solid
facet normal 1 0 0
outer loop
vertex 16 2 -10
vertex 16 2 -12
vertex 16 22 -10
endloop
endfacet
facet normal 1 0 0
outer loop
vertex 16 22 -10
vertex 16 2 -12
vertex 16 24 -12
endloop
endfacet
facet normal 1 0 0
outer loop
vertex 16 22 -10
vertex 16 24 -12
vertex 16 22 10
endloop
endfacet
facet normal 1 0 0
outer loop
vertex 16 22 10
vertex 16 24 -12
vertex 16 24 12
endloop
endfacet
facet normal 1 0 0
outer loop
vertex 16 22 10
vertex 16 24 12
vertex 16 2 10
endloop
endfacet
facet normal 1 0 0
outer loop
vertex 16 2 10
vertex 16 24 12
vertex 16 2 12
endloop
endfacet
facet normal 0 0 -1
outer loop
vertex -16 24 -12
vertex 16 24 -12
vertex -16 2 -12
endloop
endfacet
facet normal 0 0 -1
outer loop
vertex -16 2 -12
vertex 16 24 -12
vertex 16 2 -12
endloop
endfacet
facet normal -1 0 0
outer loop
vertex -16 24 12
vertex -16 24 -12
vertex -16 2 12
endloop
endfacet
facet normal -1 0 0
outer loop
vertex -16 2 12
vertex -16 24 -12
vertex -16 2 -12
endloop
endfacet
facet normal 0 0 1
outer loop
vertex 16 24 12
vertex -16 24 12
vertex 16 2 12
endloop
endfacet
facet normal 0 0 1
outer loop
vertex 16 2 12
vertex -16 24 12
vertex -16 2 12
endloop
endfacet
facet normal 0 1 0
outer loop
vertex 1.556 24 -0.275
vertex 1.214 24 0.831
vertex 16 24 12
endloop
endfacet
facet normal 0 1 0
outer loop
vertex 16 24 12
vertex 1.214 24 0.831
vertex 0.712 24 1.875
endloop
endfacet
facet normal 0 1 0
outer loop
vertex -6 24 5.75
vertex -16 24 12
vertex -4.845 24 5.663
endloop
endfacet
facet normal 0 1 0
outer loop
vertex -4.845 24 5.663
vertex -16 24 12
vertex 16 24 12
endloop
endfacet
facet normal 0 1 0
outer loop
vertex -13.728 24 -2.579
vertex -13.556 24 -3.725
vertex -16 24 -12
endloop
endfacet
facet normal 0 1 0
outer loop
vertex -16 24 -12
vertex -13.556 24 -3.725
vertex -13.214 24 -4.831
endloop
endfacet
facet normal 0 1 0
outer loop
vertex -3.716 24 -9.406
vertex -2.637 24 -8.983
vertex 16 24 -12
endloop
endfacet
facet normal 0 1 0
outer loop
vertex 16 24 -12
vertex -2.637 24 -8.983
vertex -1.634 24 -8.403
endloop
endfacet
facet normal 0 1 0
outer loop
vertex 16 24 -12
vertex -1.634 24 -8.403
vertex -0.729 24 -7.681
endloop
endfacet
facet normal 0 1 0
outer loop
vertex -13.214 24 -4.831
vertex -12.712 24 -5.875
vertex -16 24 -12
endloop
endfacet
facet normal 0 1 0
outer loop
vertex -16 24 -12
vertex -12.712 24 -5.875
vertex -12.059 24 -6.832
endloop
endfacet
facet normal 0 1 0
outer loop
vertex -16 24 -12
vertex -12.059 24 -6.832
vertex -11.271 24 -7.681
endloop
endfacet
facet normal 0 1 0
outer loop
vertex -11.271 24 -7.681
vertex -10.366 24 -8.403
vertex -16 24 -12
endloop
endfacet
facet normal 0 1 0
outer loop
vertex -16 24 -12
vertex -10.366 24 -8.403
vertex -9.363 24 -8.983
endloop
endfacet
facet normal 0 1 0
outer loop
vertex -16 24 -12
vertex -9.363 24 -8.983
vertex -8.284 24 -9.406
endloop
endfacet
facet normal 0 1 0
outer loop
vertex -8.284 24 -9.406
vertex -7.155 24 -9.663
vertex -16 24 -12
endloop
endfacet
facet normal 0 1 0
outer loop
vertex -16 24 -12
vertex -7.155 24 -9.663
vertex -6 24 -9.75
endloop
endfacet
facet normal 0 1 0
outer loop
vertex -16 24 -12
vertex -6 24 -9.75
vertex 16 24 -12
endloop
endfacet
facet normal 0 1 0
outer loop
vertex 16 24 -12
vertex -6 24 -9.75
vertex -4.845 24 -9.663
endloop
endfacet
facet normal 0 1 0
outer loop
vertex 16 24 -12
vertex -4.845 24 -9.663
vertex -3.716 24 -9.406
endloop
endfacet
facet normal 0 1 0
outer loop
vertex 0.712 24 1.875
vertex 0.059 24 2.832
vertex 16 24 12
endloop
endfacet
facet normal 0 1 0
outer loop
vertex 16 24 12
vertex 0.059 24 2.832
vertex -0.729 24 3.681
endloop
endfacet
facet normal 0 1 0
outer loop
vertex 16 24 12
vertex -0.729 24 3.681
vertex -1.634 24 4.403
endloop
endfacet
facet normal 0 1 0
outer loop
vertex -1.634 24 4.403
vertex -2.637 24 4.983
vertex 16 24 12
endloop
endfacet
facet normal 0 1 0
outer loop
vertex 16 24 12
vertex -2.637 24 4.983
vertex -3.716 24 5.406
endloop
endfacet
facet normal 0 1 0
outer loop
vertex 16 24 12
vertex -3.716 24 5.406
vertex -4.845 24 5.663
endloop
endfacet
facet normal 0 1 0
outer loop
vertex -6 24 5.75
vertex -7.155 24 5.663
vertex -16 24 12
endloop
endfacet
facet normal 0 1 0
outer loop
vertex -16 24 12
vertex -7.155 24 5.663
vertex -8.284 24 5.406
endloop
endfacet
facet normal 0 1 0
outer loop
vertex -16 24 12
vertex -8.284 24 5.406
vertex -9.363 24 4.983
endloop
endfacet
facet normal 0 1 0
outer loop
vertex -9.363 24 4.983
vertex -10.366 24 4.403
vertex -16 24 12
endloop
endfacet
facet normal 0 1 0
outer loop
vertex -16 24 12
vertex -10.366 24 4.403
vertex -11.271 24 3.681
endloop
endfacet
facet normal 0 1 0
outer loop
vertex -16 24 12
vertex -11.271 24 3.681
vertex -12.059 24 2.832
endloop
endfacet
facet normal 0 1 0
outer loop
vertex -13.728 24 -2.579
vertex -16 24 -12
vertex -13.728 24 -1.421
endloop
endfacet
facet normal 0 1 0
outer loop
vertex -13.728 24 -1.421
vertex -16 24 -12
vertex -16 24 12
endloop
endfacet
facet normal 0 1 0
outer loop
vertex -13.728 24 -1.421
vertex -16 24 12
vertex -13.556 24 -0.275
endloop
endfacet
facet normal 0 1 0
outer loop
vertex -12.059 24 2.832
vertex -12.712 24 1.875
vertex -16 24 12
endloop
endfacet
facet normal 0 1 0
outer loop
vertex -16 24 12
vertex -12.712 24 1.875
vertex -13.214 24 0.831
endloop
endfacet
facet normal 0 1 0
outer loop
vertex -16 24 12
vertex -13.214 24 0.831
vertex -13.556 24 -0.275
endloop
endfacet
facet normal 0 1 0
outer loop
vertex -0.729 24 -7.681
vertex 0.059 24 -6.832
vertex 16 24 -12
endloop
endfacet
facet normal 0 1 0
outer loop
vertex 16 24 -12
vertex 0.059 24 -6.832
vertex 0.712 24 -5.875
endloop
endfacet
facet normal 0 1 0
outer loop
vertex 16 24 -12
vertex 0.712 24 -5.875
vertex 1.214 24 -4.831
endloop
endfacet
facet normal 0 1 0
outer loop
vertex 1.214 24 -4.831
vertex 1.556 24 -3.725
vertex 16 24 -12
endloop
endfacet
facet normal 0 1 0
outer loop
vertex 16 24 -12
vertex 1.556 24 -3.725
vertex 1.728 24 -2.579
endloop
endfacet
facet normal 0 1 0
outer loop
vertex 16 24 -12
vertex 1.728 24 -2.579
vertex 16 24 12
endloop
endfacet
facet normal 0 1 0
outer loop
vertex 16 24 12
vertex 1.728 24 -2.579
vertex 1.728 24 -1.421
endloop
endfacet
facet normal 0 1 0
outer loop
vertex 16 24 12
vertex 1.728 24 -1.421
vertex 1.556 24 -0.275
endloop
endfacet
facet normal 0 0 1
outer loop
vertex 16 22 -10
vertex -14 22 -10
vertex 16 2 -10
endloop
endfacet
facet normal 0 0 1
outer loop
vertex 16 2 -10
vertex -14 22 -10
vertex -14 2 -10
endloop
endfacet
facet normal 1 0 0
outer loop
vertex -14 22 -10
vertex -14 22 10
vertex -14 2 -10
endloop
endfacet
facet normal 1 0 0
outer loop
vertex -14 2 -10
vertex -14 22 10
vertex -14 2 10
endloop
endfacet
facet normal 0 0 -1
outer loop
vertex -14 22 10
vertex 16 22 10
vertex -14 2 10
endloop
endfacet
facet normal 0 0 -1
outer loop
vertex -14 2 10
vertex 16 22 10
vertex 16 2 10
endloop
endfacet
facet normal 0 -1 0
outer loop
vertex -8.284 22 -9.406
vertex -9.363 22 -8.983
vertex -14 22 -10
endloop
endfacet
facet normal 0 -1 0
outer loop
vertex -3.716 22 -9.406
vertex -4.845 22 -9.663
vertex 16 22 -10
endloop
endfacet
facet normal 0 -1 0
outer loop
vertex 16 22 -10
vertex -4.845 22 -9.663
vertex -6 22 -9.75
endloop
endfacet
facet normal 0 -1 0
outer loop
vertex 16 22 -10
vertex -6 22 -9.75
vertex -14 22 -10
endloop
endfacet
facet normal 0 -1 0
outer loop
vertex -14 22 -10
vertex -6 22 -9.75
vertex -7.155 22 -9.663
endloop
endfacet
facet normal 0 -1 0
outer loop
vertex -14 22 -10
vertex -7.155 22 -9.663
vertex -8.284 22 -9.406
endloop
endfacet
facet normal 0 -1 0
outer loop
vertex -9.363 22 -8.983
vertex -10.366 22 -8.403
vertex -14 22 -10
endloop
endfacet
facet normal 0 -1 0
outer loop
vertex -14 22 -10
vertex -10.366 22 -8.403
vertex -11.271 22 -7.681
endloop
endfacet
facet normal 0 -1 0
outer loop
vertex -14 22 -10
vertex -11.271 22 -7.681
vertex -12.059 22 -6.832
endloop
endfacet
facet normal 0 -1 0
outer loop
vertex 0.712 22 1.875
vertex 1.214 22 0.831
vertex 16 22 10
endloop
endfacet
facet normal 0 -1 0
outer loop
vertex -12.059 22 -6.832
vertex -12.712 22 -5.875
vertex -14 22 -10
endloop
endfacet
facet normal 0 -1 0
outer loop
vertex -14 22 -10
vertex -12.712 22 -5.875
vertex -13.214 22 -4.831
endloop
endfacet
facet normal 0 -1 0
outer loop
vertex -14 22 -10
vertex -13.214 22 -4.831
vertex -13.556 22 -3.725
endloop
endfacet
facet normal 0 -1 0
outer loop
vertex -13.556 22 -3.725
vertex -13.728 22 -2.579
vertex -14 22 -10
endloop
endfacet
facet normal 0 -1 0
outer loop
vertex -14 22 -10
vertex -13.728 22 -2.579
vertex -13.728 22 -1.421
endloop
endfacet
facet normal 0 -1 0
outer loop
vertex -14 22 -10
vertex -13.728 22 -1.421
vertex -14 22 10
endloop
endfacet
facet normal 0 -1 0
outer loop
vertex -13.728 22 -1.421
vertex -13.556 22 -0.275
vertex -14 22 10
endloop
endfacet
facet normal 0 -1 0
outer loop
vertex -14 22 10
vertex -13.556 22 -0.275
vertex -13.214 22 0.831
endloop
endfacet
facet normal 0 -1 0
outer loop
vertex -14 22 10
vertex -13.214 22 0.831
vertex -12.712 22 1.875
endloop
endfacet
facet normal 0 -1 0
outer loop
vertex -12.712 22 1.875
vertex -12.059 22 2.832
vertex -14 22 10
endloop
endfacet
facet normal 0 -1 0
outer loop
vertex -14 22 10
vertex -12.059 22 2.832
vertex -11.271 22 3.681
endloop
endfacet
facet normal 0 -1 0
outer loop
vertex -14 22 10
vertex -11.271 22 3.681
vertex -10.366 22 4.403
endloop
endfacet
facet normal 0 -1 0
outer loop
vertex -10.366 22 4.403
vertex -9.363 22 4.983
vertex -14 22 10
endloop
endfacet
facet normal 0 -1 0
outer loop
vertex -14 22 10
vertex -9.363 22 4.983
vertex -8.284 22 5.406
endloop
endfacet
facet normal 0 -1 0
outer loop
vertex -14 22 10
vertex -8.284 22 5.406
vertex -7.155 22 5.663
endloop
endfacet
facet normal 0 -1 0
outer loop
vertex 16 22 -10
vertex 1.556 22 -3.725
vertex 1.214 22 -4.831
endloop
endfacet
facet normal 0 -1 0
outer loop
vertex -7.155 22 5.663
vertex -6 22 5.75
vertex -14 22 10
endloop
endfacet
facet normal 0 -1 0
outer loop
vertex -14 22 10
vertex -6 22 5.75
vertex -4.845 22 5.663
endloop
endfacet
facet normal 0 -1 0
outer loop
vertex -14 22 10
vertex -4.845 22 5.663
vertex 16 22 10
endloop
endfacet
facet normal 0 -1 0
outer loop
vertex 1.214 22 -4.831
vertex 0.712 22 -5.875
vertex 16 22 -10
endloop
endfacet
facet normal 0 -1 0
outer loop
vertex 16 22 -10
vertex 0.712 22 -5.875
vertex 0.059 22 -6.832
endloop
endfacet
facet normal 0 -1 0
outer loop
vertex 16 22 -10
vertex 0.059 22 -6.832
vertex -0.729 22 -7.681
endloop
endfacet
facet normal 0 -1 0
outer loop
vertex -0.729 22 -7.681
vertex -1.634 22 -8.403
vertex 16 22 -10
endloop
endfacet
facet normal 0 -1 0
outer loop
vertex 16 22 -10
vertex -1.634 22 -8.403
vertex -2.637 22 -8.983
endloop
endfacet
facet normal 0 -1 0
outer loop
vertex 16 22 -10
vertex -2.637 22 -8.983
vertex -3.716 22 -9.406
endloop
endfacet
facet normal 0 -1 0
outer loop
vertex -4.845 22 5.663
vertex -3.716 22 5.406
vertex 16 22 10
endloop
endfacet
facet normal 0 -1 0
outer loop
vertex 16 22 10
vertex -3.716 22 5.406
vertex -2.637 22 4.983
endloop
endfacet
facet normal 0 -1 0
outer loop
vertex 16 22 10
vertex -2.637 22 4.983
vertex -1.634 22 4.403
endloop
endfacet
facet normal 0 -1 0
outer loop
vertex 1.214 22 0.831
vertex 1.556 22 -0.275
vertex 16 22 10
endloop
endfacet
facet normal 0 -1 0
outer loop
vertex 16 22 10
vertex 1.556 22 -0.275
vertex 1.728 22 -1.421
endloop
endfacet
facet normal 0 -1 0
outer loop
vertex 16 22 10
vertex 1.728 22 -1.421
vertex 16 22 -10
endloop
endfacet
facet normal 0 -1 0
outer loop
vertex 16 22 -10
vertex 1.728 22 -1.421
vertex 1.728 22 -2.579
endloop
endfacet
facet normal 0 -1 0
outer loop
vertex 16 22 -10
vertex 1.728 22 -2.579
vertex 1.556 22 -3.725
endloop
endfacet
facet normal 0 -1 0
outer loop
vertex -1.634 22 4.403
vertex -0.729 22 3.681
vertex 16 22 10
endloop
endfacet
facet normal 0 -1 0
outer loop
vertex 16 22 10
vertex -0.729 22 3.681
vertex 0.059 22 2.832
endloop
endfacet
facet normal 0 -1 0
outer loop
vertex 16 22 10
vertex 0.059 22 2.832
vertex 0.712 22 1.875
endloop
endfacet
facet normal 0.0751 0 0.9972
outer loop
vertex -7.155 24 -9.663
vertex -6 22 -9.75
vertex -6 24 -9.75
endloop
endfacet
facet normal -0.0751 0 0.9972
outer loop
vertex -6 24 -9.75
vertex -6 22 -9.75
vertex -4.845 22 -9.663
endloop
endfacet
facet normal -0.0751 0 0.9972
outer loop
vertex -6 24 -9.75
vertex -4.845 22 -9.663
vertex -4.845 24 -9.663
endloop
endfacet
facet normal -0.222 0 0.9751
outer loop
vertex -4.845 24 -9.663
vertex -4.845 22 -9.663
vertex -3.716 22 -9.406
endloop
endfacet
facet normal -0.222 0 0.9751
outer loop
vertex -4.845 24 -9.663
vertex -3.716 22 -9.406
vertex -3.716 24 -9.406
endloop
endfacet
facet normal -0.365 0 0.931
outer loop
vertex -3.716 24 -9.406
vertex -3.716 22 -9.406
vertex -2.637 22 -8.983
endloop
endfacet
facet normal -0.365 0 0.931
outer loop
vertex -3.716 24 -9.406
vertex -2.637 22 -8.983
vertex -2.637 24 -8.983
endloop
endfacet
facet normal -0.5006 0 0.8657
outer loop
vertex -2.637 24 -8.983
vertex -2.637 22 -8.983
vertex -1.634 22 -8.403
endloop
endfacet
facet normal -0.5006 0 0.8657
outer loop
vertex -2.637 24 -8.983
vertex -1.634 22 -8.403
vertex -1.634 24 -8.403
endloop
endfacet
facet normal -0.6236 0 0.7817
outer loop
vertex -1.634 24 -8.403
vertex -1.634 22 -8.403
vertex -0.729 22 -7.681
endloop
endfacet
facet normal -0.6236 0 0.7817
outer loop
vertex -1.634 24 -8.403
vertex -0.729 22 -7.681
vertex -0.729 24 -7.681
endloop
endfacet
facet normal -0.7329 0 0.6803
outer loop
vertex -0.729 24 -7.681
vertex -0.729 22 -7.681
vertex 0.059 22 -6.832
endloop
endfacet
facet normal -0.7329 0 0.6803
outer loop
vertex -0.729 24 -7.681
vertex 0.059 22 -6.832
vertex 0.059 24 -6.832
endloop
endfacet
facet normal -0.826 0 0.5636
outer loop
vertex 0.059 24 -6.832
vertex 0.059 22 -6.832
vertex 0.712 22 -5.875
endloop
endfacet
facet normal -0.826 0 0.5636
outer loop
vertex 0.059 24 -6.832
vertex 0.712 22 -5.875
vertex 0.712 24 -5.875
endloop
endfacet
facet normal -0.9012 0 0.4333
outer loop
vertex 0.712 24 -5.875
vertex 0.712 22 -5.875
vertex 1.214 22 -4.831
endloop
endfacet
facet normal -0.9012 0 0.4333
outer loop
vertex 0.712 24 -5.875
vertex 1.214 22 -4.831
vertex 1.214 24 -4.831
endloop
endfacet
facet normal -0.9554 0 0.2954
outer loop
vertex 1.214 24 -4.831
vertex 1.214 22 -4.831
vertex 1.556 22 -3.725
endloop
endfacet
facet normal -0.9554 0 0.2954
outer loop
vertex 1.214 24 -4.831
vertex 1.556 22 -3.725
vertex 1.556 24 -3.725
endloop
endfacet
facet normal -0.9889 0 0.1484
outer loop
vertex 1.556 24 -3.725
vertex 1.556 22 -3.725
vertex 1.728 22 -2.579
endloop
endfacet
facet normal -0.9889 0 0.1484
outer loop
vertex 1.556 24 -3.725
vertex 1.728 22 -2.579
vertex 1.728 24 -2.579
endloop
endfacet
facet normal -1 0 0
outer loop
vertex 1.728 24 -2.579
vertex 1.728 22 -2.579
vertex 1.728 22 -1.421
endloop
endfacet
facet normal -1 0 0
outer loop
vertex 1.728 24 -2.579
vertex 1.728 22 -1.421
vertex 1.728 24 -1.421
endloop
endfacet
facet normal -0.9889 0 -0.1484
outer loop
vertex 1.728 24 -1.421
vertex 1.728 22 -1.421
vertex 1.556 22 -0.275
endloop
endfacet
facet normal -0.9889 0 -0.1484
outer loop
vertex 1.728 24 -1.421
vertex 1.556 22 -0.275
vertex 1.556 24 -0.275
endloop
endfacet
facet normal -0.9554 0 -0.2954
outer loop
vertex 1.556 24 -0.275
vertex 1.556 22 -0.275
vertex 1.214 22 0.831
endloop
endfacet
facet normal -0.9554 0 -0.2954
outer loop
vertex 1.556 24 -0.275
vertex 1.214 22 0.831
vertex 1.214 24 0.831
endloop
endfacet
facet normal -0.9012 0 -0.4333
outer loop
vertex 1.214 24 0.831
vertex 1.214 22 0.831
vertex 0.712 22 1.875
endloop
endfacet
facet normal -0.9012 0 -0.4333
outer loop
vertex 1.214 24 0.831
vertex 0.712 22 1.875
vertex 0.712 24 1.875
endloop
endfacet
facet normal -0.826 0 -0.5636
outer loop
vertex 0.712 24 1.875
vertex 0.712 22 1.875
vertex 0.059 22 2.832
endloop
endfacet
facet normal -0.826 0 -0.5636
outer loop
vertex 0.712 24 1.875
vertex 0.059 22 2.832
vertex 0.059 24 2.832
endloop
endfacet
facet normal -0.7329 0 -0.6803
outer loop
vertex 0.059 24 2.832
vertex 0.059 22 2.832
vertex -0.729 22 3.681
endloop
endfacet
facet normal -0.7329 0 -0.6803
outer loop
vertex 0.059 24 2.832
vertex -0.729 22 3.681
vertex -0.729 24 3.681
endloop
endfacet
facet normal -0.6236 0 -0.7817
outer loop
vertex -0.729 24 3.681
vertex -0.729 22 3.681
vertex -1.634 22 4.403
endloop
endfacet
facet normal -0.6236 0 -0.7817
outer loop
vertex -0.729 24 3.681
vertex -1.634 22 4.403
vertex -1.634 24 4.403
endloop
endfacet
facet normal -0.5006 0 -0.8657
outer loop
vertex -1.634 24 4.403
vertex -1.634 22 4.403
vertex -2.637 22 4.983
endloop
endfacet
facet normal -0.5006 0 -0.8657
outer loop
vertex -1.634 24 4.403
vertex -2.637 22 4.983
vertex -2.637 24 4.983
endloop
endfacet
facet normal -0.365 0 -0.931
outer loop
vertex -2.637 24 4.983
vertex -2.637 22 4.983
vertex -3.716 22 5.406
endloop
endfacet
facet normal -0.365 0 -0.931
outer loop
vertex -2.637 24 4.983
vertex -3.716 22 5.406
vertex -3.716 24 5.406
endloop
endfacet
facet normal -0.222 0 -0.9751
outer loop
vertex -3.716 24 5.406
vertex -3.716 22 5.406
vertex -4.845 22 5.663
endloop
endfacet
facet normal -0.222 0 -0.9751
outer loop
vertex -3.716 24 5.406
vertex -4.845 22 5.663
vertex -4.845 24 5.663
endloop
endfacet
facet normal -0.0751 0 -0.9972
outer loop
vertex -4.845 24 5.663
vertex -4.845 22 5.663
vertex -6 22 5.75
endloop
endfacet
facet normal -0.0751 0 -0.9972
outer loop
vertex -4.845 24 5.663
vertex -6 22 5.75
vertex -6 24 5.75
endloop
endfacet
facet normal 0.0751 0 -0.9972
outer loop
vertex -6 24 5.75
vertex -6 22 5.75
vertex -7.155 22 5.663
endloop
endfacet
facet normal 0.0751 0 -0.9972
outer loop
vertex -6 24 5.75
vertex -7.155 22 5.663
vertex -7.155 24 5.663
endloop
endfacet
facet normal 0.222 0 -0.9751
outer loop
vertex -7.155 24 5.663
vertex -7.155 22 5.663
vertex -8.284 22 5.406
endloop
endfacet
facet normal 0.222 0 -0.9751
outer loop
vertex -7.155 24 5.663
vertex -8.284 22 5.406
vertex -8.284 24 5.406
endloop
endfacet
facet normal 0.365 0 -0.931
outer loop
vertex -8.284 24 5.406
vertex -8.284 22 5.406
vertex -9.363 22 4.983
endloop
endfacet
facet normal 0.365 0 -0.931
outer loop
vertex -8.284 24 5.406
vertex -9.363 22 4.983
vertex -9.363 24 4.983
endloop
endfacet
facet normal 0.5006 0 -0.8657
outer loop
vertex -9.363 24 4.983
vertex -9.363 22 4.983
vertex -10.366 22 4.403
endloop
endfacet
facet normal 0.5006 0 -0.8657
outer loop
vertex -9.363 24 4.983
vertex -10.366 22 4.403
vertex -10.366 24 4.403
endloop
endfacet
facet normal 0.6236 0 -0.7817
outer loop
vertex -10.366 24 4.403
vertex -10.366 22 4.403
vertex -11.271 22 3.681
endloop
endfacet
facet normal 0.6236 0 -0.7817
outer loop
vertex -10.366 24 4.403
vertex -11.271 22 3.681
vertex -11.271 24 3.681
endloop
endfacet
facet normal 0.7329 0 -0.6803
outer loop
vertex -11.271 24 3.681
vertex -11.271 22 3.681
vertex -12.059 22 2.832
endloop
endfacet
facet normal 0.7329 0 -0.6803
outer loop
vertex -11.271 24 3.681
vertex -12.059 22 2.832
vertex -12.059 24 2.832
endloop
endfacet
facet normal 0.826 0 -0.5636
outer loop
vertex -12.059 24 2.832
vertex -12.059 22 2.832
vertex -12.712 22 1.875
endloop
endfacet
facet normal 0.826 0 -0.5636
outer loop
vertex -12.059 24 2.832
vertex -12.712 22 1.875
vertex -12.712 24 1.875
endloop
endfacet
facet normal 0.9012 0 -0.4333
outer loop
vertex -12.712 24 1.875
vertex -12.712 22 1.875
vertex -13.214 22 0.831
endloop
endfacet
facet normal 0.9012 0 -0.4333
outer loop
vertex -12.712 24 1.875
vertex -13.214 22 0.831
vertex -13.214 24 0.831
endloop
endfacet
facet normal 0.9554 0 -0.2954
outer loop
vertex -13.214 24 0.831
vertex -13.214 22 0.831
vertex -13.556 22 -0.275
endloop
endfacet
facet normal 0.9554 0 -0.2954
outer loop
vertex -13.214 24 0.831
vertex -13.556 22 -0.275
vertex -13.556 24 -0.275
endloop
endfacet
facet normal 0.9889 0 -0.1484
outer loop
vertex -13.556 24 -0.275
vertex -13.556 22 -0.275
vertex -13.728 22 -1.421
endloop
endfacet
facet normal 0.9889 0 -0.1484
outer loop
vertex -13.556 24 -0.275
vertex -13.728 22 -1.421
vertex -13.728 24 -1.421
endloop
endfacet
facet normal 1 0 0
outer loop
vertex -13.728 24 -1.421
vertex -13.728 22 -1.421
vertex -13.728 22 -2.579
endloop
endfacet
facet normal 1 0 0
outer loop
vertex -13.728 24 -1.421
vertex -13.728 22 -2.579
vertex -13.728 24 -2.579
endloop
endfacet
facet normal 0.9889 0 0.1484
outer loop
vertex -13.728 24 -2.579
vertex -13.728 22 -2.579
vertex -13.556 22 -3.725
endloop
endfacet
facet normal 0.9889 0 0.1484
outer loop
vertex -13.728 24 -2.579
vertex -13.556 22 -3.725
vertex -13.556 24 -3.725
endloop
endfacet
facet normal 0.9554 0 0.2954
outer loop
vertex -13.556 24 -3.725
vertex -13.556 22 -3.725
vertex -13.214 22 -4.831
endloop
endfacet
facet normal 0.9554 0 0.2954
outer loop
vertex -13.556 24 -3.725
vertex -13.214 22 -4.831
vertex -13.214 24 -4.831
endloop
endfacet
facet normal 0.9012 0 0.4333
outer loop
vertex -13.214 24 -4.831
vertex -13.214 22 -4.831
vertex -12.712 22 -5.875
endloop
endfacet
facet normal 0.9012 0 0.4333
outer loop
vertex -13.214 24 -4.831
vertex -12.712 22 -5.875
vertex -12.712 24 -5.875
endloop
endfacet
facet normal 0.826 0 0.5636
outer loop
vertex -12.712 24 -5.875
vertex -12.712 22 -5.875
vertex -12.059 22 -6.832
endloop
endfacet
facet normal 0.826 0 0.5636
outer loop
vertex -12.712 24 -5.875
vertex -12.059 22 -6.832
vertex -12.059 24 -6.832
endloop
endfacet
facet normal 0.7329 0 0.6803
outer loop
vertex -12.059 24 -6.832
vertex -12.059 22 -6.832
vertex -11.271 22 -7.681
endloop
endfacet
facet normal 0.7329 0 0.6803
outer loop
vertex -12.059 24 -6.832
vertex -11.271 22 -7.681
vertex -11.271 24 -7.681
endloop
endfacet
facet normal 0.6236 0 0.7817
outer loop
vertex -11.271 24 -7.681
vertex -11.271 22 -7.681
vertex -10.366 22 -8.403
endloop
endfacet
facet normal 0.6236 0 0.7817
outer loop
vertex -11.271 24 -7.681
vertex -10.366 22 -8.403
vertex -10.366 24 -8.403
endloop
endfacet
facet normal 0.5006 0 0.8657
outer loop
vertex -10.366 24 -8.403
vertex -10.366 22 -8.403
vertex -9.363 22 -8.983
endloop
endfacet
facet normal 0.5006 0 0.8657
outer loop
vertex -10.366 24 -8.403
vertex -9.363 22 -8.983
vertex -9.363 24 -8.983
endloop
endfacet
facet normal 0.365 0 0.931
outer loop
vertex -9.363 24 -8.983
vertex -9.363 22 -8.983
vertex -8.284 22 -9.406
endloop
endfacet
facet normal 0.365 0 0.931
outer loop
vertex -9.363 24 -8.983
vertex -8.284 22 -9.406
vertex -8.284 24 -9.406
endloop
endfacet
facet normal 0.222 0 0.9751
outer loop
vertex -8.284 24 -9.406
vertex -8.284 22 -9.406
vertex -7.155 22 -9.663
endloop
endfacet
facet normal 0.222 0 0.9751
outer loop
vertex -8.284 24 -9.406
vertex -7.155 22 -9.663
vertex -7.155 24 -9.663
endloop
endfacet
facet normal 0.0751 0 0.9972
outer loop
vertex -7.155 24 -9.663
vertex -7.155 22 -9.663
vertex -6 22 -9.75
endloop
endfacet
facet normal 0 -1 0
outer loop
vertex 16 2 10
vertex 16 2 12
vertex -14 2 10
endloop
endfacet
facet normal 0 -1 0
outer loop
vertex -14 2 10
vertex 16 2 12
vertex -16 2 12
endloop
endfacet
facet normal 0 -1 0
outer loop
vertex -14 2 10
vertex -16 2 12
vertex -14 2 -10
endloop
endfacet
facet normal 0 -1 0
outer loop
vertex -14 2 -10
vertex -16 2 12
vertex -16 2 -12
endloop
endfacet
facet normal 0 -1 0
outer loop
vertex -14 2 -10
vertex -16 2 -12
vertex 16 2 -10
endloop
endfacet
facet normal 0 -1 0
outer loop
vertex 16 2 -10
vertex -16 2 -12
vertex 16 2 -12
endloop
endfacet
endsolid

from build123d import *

# Parameters (mm, degrees)
CROQUIS1_W              = 32
CROQUIS1_H              = 24
SALIENTE_EXTRUIR1_DEPTH = 24
VACIADO1_T              = -2
CROQUIS2_R              = 7.75
CORTAR_EXTRUIR1_DEPTH   = 5
CROQUIS3_W              = 32
CROQUIS3_H              = 24
CORTAR_EXTRUIR2_DEPTH   = 2


with BuildPart() as part:
    # Croquis1 → Saliente-Extruir1 (new body)
    with BuildSketch(Plane(origin=(0, 0, 0), x_dir=(1, 0, 0), z_dir=(0, 1, 0))):
        Rectangle(CROQUIS1_W, CROQUIS1_H)
    extrude(amount=SALIENTE_EXTRUIR1_DEPTH)

    # Vaciado1
    vaciado1_openings = [part.faces().sort_by_distance(p)[0] for p in [
        (16, 12, 0),
    ]]
    offset(amount=VACIADO1_T, openings=vaciado1_openings, kind=Kind.INTERSECTION)

    # Croquis2 → Cortar-Extruir1 (cut)
    with BuildSketch(Plane(origin=(0, 22, 0), x_dir=(-1, 0, 0), z_dir=(0, -1, 0))):
        with Locations(Location((6, 2, 0), (0, 0, 90))):
            Circle(CROQUIS2_R)
    extrude(amount=-CORTAR_EXTRUIR1_DEPTH, mode=Mode.SUBTRACT)

    # Croquis3 → Cortar-Extruir2 (cut)
    with BuildSketch(Plane(origin=(0, 0, 0), x_dir=(-1, 0, 0), z_dir=(0, -1, 0))):
        Rectangle(CROQUIS3_W, CROQUIS3_H)
    extrude(amount=-CORTAR_EXTRUIR2_DEPTH, mode=Mode.SUBTRACT)


solid = part.part
